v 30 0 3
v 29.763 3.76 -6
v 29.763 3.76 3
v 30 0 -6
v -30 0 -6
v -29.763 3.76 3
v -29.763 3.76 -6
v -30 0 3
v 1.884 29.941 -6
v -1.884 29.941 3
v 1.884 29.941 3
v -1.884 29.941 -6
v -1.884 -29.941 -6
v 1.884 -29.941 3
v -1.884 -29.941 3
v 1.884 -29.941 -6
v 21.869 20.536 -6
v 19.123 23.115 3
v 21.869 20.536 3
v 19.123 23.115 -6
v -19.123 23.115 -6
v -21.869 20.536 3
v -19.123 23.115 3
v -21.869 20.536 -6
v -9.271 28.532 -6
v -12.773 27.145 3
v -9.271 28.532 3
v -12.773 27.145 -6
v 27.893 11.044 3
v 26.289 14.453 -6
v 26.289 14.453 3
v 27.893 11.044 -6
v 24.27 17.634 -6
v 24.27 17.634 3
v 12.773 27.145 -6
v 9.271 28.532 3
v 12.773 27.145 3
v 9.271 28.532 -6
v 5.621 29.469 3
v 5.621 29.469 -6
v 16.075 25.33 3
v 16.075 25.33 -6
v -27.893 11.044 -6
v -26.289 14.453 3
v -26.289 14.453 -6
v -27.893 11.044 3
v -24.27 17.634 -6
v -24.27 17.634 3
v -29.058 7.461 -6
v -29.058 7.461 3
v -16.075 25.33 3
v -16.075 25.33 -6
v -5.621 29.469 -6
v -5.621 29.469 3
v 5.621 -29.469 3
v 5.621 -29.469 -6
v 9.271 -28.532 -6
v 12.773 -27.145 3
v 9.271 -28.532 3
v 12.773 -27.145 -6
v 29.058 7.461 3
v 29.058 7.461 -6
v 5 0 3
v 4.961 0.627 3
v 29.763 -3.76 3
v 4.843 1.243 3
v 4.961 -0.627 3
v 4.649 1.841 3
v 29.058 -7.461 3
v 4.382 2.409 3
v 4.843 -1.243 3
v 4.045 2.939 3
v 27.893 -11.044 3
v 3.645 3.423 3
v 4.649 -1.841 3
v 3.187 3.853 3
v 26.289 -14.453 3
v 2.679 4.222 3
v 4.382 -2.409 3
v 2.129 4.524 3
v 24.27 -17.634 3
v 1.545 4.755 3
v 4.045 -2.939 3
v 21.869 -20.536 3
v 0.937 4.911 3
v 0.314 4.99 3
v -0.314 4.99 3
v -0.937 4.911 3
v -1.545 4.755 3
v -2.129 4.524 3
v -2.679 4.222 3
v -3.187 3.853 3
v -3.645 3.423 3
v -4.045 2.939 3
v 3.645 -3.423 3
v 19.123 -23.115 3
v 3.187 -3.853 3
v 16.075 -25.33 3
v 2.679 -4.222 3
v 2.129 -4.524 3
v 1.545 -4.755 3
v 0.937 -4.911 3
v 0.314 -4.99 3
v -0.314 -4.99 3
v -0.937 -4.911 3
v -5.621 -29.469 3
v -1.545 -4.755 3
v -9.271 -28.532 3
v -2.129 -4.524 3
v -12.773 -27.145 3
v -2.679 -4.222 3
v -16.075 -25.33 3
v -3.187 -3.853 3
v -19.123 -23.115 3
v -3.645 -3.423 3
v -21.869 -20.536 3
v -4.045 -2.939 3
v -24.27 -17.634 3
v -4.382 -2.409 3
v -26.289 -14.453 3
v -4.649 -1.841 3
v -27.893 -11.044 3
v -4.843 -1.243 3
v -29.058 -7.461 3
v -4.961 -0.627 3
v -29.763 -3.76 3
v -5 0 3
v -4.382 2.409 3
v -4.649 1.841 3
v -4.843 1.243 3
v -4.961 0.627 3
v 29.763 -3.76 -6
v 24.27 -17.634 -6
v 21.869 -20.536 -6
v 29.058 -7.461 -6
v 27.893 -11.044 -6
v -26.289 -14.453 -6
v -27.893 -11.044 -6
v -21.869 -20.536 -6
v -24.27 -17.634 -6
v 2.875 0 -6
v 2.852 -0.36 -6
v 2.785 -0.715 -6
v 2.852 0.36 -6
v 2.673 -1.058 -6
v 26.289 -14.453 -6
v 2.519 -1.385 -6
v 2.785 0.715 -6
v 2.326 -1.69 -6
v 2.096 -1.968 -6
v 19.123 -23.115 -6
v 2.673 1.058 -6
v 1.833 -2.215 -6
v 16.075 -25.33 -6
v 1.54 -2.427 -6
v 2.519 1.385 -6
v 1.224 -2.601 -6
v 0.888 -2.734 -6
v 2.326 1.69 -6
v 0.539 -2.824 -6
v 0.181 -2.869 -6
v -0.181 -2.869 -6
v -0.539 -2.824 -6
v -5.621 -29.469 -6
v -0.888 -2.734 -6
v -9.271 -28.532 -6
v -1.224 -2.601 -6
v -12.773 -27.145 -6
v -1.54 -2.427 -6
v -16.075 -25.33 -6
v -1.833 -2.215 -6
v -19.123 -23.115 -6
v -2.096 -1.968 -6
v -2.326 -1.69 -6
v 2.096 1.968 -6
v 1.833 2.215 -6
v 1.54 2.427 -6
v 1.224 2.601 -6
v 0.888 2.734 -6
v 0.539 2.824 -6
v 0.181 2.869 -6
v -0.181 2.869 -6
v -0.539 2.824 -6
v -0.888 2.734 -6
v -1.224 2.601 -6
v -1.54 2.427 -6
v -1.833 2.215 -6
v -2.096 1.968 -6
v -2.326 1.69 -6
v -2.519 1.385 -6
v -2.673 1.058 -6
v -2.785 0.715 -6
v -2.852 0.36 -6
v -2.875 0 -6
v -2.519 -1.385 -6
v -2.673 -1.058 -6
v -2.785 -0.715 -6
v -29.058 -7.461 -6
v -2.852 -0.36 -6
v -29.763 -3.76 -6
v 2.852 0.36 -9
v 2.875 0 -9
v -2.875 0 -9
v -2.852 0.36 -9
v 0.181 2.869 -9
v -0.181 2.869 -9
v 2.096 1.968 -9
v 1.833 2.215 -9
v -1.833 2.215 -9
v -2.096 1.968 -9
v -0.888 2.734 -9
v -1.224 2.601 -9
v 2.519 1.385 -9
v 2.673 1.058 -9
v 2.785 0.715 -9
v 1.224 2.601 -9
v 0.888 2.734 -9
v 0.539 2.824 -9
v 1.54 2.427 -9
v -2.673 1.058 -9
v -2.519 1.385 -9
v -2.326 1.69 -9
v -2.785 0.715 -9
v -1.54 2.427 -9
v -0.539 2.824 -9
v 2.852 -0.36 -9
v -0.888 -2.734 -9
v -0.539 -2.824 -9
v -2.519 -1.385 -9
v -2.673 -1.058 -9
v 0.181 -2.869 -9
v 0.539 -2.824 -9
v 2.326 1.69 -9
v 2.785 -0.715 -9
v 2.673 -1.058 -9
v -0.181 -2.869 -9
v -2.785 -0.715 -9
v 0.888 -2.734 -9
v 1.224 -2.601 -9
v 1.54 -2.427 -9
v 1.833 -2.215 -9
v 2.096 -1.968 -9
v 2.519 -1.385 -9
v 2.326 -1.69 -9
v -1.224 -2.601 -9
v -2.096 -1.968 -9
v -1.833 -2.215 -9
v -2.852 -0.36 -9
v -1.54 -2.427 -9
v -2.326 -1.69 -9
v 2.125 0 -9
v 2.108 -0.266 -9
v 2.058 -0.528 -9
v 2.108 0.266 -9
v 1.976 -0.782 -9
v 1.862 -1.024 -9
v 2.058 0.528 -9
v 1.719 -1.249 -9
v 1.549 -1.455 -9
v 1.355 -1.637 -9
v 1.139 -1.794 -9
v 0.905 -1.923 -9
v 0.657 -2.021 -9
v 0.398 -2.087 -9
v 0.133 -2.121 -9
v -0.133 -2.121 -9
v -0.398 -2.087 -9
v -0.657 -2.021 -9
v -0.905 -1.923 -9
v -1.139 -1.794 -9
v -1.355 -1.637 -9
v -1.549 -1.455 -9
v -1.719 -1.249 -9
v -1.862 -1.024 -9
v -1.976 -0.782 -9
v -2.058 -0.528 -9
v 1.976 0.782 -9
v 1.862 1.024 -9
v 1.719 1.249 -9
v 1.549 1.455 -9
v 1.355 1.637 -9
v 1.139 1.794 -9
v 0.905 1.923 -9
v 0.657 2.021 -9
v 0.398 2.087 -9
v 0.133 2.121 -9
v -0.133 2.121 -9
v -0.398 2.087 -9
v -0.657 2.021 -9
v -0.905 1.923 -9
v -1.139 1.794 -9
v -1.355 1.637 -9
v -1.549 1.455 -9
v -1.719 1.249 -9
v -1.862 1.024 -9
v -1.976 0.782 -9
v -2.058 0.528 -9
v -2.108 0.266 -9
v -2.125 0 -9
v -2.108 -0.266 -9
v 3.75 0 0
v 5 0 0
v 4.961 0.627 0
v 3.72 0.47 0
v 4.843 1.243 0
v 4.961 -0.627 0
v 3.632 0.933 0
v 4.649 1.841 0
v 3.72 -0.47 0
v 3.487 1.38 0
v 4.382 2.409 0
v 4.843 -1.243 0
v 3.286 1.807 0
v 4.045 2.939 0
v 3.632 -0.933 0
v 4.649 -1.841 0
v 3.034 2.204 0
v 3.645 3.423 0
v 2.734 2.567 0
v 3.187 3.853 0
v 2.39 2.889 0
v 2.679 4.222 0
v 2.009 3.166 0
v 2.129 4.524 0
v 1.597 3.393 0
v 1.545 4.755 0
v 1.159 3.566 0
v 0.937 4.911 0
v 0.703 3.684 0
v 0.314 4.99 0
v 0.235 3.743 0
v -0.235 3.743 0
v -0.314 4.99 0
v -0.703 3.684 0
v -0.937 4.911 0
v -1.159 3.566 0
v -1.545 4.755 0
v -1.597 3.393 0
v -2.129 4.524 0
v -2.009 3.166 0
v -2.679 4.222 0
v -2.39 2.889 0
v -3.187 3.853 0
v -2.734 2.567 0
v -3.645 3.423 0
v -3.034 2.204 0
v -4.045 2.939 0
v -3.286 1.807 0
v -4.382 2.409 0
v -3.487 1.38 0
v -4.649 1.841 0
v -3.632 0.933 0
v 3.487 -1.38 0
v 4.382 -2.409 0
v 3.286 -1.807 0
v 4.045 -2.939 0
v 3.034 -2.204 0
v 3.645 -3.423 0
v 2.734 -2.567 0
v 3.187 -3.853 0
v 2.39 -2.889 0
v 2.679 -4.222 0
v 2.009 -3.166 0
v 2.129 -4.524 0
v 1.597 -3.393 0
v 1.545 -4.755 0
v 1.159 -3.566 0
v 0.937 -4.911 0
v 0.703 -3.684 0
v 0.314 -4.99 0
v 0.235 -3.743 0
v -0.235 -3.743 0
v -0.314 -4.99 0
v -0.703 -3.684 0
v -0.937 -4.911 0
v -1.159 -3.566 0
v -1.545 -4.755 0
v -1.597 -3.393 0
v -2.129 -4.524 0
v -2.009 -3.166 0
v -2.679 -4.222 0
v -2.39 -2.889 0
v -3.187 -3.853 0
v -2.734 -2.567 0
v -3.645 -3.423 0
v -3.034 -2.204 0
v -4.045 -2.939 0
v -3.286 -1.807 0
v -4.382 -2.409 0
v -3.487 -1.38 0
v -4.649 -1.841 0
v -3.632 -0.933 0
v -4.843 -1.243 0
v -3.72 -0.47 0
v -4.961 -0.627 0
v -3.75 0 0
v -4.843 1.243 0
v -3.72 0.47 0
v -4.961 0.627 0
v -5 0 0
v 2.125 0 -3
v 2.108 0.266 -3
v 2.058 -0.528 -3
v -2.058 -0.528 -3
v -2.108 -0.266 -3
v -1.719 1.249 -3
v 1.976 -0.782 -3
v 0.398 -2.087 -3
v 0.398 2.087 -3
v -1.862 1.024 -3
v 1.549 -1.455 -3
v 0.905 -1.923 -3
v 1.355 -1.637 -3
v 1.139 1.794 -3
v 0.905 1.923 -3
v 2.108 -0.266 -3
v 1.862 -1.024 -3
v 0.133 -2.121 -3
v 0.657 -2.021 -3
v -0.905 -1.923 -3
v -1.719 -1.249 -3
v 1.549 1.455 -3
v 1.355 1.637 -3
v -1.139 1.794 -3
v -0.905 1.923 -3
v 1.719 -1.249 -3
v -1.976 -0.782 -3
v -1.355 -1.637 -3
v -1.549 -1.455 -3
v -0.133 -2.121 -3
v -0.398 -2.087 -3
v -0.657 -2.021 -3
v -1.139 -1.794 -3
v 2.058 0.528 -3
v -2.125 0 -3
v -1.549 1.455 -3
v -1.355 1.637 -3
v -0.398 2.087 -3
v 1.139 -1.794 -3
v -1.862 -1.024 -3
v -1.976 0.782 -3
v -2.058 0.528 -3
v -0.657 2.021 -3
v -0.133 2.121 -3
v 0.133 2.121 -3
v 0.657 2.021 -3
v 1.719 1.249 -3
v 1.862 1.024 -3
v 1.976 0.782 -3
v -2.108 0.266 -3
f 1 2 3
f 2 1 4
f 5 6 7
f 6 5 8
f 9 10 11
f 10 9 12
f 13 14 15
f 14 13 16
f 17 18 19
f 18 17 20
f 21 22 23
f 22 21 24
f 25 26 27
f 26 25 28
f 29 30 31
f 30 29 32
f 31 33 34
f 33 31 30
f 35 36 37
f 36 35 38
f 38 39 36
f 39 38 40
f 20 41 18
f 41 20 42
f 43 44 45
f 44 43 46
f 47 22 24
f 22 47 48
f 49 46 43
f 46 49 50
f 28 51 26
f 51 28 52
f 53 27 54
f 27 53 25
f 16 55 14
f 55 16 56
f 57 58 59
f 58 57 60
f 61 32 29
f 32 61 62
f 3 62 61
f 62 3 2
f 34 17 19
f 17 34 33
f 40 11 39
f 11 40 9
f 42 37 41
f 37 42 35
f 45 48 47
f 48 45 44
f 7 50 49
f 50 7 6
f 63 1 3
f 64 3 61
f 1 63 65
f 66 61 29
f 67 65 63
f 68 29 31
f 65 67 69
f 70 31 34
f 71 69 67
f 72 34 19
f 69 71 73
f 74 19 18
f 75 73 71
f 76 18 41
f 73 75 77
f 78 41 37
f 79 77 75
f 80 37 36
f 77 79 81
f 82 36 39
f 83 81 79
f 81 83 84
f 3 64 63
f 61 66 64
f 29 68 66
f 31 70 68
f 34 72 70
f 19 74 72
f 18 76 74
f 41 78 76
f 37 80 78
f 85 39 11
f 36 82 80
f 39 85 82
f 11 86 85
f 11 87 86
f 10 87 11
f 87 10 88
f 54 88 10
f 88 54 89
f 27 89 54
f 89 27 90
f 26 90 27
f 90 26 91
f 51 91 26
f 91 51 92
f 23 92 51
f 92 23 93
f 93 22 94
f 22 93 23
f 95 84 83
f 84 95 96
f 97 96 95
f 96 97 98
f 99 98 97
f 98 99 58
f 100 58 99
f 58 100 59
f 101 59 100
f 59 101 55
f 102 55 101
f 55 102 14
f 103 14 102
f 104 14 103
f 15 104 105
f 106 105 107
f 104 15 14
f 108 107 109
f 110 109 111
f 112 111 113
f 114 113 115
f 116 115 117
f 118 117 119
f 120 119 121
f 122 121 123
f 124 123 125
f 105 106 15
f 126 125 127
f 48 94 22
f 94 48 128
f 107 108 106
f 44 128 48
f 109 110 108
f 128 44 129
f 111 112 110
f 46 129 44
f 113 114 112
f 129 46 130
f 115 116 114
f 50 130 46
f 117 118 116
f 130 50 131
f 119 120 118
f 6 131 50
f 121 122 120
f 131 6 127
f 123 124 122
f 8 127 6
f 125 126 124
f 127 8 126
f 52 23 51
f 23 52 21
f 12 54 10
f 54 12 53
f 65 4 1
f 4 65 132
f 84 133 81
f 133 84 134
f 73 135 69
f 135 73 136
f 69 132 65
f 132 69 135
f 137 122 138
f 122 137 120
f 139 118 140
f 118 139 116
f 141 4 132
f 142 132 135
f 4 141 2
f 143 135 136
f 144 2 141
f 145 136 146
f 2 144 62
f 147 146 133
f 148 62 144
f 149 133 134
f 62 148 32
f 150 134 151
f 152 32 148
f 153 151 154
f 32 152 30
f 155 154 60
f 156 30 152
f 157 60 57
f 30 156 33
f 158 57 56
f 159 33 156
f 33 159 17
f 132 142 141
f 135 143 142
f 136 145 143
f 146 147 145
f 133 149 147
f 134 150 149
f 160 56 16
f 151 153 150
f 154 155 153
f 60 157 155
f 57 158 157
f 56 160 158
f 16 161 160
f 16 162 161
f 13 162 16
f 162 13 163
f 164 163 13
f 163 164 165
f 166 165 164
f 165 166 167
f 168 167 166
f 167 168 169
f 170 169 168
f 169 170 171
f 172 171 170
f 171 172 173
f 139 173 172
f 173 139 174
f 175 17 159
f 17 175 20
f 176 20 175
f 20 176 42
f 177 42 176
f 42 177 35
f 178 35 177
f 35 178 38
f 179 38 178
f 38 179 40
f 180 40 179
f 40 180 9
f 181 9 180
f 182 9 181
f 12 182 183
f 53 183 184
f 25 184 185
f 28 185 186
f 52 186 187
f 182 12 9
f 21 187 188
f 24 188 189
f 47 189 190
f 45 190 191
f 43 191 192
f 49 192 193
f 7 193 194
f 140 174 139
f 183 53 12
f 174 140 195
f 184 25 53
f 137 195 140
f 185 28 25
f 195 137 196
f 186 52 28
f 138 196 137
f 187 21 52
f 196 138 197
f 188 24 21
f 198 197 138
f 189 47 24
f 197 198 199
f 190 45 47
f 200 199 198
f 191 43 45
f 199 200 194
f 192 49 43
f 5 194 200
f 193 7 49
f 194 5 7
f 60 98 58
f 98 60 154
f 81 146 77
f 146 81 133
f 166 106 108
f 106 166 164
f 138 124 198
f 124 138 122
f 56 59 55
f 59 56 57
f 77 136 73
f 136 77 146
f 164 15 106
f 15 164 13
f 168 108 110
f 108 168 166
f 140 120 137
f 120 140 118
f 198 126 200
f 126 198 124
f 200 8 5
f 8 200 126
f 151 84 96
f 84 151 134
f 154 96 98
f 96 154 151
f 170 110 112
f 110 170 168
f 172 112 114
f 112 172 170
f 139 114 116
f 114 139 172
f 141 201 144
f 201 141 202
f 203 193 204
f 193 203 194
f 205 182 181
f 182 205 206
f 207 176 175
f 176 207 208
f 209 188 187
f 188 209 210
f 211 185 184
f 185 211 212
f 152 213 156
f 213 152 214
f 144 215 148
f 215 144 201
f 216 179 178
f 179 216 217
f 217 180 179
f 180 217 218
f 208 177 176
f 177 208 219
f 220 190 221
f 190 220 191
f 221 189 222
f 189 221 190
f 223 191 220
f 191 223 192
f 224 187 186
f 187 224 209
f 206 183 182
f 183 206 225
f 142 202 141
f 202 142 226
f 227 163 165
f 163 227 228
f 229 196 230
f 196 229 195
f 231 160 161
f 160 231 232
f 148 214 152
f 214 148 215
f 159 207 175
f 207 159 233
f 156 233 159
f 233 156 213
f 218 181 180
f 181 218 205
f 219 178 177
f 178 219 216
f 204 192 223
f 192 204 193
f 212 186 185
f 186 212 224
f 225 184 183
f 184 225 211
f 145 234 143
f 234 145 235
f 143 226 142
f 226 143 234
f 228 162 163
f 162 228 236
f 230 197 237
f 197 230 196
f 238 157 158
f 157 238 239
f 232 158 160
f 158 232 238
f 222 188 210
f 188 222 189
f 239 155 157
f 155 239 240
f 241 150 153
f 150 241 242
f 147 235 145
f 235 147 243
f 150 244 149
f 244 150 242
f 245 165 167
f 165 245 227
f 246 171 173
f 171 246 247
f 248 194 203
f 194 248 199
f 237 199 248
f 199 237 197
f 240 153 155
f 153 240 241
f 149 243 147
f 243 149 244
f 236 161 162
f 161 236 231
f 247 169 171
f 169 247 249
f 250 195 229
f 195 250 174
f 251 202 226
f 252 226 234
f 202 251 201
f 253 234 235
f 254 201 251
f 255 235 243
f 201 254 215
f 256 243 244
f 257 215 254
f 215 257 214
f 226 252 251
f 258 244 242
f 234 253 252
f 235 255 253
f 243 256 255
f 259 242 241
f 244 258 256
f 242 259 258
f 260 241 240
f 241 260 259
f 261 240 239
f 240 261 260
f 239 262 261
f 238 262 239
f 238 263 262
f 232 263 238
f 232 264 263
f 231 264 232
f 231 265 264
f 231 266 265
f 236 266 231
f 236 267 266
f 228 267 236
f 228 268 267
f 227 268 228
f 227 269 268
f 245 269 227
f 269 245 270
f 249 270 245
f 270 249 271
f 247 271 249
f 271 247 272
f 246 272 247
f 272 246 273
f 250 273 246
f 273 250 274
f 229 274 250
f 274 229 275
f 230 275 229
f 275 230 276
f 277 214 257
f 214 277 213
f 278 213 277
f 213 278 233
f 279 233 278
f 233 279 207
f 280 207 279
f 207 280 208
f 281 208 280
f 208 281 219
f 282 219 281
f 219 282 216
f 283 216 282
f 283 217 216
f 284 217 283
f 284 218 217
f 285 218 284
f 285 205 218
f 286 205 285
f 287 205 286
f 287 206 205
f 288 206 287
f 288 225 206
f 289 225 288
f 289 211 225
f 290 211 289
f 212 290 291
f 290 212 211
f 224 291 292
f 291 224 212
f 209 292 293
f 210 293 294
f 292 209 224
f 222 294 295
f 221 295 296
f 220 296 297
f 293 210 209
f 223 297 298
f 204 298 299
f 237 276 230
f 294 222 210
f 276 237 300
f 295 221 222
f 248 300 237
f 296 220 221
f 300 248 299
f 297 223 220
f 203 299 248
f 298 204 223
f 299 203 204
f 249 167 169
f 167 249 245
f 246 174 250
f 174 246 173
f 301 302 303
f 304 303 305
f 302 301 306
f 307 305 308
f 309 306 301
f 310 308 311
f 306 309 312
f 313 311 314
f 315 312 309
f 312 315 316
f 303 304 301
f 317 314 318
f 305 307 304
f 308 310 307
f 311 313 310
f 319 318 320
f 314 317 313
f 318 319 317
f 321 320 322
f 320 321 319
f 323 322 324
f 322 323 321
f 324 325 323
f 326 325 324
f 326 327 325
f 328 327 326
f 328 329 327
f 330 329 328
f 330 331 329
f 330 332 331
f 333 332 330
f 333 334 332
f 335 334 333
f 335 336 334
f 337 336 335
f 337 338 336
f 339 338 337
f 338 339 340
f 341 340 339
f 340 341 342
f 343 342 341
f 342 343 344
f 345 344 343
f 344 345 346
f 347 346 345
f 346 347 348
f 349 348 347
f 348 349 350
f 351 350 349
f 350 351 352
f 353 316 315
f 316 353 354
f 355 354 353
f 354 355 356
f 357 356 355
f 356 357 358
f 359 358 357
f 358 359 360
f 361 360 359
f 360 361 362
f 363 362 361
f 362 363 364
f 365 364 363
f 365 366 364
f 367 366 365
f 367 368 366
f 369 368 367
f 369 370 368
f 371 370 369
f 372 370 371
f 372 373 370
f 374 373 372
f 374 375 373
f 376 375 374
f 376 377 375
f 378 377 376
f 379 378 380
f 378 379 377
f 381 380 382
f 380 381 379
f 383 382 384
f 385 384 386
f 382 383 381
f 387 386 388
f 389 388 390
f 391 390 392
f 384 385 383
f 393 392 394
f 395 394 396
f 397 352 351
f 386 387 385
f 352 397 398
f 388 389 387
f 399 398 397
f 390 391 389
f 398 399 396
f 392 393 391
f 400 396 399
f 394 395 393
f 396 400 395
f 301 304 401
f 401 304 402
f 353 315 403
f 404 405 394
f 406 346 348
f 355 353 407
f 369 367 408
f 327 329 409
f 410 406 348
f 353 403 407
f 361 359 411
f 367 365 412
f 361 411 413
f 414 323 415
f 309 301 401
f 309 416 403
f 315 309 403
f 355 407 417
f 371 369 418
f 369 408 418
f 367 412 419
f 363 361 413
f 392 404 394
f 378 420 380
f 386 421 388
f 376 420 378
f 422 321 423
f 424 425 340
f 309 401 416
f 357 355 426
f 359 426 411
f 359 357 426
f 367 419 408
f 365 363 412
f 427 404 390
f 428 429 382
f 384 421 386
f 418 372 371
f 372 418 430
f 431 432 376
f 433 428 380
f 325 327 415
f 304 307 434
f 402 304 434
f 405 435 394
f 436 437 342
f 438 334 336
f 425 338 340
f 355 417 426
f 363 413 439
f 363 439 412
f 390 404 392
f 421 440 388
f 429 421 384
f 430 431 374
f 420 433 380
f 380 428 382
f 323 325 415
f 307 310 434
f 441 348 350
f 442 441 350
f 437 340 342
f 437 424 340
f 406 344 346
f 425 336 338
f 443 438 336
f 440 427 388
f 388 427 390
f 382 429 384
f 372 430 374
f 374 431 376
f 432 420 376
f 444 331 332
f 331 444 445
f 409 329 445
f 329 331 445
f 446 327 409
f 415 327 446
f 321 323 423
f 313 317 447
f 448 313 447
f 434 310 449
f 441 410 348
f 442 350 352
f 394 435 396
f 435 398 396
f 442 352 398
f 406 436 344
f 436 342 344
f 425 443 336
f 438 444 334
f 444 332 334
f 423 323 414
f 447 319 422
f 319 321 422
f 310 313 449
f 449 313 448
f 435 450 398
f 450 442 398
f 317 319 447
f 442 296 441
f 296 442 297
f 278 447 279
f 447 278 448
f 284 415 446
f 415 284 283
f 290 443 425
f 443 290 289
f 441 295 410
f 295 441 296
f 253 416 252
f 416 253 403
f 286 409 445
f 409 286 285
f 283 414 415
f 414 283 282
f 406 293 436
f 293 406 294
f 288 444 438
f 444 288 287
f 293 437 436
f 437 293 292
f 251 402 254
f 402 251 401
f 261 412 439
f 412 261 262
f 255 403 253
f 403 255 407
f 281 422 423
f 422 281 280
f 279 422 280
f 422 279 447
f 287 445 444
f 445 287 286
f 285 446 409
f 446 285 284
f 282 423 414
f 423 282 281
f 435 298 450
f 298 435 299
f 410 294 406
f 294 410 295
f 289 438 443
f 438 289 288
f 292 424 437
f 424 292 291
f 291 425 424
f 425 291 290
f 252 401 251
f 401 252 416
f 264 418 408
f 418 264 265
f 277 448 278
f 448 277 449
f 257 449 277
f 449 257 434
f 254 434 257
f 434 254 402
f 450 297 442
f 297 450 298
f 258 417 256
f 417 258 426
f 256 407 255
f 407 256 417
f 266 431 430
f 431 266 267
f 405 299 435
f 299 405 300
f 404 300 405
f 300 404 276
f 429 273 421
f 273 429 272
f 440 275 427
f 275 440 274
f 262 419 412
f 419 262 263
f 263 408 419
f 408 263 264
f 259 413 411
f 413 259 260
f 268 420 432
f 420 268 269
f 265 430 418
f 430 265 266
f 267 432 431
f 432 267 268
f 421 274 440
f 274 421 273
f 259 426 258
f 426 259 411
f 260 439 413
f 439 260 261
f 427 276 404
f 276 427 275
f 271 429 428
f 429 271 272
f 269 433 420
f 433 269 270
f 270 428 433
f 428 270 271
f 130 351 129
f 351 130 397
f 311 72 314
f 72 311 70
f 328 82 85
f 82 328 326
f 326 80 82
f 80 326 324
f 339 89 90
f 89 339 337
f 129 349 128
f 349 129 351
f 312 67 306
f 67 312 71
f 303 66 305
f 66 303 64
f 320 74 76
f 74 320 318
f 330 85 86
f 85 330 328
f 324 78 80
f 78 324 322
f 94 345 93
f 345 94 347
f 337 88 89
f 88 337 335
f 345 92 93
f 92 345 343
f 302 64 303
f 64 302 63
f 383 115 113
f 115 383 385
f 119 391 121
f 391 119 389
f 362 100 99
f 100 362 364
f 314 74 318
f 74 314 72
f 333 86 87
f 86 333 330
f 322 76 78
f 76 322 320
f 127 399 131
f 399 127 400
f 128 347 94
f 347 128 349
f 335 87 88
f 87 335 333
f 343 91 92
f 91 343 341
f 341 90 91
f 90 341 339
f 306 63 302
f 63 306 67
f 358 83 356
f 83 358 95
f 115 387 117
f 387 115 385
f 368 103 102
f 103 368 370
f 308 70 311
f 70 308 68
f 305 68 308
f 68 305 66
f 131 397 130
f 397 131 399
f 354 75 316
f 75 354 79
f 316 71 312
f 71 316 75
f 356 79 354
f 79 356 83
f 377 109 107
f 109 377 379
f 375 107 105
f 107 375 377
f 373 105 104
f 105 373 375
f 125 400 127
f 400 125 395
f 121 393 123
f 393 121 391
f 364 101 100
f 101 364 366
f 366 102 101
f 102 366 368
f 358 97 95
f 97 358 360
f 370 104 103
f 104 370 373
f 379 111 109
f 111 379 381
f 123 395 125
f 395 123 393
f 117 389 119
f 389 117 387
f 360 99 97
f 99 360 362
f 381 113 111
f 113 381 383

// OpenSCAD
$fn = 50;


difference() {
	union() {
		translate(v = [0, 0, -6.0000000000]) {
			cylinder(h = 9, r = 30.0000000000);
		}
		#translate(v = [0, 0, -9.0000000000]) {
			cylinder(h = 9, r = 2.8750000000);
		}
	}
	union() {
		translate(v = [0, 0, 0]) {
			rotate(a = [0, 0, 0]) {
				difference() {
					union() {
						translate(v = [0, 0, -9.0000000000]) {
							cylinder(h = 9, r = 2.0000000000);
						}
						translate(v = [0, 0, -3]) {
							cylinder(h = 3, r1 = 2.1250000000, r2 = 3.7500000000);
						}
						translate(v = [0, 0, -9.0000000000]) {
							cylinder(h = 9, r = 2.1250000000);
						}
						translate(v = [0, 0, -9.0000000000]) {
							cylinder(h = 9, r = 2.0000000000);
						}
					}
					union();
				}
			}
		}
		#cylinder(h = 3, r = 5.0000000000);
	}
}
